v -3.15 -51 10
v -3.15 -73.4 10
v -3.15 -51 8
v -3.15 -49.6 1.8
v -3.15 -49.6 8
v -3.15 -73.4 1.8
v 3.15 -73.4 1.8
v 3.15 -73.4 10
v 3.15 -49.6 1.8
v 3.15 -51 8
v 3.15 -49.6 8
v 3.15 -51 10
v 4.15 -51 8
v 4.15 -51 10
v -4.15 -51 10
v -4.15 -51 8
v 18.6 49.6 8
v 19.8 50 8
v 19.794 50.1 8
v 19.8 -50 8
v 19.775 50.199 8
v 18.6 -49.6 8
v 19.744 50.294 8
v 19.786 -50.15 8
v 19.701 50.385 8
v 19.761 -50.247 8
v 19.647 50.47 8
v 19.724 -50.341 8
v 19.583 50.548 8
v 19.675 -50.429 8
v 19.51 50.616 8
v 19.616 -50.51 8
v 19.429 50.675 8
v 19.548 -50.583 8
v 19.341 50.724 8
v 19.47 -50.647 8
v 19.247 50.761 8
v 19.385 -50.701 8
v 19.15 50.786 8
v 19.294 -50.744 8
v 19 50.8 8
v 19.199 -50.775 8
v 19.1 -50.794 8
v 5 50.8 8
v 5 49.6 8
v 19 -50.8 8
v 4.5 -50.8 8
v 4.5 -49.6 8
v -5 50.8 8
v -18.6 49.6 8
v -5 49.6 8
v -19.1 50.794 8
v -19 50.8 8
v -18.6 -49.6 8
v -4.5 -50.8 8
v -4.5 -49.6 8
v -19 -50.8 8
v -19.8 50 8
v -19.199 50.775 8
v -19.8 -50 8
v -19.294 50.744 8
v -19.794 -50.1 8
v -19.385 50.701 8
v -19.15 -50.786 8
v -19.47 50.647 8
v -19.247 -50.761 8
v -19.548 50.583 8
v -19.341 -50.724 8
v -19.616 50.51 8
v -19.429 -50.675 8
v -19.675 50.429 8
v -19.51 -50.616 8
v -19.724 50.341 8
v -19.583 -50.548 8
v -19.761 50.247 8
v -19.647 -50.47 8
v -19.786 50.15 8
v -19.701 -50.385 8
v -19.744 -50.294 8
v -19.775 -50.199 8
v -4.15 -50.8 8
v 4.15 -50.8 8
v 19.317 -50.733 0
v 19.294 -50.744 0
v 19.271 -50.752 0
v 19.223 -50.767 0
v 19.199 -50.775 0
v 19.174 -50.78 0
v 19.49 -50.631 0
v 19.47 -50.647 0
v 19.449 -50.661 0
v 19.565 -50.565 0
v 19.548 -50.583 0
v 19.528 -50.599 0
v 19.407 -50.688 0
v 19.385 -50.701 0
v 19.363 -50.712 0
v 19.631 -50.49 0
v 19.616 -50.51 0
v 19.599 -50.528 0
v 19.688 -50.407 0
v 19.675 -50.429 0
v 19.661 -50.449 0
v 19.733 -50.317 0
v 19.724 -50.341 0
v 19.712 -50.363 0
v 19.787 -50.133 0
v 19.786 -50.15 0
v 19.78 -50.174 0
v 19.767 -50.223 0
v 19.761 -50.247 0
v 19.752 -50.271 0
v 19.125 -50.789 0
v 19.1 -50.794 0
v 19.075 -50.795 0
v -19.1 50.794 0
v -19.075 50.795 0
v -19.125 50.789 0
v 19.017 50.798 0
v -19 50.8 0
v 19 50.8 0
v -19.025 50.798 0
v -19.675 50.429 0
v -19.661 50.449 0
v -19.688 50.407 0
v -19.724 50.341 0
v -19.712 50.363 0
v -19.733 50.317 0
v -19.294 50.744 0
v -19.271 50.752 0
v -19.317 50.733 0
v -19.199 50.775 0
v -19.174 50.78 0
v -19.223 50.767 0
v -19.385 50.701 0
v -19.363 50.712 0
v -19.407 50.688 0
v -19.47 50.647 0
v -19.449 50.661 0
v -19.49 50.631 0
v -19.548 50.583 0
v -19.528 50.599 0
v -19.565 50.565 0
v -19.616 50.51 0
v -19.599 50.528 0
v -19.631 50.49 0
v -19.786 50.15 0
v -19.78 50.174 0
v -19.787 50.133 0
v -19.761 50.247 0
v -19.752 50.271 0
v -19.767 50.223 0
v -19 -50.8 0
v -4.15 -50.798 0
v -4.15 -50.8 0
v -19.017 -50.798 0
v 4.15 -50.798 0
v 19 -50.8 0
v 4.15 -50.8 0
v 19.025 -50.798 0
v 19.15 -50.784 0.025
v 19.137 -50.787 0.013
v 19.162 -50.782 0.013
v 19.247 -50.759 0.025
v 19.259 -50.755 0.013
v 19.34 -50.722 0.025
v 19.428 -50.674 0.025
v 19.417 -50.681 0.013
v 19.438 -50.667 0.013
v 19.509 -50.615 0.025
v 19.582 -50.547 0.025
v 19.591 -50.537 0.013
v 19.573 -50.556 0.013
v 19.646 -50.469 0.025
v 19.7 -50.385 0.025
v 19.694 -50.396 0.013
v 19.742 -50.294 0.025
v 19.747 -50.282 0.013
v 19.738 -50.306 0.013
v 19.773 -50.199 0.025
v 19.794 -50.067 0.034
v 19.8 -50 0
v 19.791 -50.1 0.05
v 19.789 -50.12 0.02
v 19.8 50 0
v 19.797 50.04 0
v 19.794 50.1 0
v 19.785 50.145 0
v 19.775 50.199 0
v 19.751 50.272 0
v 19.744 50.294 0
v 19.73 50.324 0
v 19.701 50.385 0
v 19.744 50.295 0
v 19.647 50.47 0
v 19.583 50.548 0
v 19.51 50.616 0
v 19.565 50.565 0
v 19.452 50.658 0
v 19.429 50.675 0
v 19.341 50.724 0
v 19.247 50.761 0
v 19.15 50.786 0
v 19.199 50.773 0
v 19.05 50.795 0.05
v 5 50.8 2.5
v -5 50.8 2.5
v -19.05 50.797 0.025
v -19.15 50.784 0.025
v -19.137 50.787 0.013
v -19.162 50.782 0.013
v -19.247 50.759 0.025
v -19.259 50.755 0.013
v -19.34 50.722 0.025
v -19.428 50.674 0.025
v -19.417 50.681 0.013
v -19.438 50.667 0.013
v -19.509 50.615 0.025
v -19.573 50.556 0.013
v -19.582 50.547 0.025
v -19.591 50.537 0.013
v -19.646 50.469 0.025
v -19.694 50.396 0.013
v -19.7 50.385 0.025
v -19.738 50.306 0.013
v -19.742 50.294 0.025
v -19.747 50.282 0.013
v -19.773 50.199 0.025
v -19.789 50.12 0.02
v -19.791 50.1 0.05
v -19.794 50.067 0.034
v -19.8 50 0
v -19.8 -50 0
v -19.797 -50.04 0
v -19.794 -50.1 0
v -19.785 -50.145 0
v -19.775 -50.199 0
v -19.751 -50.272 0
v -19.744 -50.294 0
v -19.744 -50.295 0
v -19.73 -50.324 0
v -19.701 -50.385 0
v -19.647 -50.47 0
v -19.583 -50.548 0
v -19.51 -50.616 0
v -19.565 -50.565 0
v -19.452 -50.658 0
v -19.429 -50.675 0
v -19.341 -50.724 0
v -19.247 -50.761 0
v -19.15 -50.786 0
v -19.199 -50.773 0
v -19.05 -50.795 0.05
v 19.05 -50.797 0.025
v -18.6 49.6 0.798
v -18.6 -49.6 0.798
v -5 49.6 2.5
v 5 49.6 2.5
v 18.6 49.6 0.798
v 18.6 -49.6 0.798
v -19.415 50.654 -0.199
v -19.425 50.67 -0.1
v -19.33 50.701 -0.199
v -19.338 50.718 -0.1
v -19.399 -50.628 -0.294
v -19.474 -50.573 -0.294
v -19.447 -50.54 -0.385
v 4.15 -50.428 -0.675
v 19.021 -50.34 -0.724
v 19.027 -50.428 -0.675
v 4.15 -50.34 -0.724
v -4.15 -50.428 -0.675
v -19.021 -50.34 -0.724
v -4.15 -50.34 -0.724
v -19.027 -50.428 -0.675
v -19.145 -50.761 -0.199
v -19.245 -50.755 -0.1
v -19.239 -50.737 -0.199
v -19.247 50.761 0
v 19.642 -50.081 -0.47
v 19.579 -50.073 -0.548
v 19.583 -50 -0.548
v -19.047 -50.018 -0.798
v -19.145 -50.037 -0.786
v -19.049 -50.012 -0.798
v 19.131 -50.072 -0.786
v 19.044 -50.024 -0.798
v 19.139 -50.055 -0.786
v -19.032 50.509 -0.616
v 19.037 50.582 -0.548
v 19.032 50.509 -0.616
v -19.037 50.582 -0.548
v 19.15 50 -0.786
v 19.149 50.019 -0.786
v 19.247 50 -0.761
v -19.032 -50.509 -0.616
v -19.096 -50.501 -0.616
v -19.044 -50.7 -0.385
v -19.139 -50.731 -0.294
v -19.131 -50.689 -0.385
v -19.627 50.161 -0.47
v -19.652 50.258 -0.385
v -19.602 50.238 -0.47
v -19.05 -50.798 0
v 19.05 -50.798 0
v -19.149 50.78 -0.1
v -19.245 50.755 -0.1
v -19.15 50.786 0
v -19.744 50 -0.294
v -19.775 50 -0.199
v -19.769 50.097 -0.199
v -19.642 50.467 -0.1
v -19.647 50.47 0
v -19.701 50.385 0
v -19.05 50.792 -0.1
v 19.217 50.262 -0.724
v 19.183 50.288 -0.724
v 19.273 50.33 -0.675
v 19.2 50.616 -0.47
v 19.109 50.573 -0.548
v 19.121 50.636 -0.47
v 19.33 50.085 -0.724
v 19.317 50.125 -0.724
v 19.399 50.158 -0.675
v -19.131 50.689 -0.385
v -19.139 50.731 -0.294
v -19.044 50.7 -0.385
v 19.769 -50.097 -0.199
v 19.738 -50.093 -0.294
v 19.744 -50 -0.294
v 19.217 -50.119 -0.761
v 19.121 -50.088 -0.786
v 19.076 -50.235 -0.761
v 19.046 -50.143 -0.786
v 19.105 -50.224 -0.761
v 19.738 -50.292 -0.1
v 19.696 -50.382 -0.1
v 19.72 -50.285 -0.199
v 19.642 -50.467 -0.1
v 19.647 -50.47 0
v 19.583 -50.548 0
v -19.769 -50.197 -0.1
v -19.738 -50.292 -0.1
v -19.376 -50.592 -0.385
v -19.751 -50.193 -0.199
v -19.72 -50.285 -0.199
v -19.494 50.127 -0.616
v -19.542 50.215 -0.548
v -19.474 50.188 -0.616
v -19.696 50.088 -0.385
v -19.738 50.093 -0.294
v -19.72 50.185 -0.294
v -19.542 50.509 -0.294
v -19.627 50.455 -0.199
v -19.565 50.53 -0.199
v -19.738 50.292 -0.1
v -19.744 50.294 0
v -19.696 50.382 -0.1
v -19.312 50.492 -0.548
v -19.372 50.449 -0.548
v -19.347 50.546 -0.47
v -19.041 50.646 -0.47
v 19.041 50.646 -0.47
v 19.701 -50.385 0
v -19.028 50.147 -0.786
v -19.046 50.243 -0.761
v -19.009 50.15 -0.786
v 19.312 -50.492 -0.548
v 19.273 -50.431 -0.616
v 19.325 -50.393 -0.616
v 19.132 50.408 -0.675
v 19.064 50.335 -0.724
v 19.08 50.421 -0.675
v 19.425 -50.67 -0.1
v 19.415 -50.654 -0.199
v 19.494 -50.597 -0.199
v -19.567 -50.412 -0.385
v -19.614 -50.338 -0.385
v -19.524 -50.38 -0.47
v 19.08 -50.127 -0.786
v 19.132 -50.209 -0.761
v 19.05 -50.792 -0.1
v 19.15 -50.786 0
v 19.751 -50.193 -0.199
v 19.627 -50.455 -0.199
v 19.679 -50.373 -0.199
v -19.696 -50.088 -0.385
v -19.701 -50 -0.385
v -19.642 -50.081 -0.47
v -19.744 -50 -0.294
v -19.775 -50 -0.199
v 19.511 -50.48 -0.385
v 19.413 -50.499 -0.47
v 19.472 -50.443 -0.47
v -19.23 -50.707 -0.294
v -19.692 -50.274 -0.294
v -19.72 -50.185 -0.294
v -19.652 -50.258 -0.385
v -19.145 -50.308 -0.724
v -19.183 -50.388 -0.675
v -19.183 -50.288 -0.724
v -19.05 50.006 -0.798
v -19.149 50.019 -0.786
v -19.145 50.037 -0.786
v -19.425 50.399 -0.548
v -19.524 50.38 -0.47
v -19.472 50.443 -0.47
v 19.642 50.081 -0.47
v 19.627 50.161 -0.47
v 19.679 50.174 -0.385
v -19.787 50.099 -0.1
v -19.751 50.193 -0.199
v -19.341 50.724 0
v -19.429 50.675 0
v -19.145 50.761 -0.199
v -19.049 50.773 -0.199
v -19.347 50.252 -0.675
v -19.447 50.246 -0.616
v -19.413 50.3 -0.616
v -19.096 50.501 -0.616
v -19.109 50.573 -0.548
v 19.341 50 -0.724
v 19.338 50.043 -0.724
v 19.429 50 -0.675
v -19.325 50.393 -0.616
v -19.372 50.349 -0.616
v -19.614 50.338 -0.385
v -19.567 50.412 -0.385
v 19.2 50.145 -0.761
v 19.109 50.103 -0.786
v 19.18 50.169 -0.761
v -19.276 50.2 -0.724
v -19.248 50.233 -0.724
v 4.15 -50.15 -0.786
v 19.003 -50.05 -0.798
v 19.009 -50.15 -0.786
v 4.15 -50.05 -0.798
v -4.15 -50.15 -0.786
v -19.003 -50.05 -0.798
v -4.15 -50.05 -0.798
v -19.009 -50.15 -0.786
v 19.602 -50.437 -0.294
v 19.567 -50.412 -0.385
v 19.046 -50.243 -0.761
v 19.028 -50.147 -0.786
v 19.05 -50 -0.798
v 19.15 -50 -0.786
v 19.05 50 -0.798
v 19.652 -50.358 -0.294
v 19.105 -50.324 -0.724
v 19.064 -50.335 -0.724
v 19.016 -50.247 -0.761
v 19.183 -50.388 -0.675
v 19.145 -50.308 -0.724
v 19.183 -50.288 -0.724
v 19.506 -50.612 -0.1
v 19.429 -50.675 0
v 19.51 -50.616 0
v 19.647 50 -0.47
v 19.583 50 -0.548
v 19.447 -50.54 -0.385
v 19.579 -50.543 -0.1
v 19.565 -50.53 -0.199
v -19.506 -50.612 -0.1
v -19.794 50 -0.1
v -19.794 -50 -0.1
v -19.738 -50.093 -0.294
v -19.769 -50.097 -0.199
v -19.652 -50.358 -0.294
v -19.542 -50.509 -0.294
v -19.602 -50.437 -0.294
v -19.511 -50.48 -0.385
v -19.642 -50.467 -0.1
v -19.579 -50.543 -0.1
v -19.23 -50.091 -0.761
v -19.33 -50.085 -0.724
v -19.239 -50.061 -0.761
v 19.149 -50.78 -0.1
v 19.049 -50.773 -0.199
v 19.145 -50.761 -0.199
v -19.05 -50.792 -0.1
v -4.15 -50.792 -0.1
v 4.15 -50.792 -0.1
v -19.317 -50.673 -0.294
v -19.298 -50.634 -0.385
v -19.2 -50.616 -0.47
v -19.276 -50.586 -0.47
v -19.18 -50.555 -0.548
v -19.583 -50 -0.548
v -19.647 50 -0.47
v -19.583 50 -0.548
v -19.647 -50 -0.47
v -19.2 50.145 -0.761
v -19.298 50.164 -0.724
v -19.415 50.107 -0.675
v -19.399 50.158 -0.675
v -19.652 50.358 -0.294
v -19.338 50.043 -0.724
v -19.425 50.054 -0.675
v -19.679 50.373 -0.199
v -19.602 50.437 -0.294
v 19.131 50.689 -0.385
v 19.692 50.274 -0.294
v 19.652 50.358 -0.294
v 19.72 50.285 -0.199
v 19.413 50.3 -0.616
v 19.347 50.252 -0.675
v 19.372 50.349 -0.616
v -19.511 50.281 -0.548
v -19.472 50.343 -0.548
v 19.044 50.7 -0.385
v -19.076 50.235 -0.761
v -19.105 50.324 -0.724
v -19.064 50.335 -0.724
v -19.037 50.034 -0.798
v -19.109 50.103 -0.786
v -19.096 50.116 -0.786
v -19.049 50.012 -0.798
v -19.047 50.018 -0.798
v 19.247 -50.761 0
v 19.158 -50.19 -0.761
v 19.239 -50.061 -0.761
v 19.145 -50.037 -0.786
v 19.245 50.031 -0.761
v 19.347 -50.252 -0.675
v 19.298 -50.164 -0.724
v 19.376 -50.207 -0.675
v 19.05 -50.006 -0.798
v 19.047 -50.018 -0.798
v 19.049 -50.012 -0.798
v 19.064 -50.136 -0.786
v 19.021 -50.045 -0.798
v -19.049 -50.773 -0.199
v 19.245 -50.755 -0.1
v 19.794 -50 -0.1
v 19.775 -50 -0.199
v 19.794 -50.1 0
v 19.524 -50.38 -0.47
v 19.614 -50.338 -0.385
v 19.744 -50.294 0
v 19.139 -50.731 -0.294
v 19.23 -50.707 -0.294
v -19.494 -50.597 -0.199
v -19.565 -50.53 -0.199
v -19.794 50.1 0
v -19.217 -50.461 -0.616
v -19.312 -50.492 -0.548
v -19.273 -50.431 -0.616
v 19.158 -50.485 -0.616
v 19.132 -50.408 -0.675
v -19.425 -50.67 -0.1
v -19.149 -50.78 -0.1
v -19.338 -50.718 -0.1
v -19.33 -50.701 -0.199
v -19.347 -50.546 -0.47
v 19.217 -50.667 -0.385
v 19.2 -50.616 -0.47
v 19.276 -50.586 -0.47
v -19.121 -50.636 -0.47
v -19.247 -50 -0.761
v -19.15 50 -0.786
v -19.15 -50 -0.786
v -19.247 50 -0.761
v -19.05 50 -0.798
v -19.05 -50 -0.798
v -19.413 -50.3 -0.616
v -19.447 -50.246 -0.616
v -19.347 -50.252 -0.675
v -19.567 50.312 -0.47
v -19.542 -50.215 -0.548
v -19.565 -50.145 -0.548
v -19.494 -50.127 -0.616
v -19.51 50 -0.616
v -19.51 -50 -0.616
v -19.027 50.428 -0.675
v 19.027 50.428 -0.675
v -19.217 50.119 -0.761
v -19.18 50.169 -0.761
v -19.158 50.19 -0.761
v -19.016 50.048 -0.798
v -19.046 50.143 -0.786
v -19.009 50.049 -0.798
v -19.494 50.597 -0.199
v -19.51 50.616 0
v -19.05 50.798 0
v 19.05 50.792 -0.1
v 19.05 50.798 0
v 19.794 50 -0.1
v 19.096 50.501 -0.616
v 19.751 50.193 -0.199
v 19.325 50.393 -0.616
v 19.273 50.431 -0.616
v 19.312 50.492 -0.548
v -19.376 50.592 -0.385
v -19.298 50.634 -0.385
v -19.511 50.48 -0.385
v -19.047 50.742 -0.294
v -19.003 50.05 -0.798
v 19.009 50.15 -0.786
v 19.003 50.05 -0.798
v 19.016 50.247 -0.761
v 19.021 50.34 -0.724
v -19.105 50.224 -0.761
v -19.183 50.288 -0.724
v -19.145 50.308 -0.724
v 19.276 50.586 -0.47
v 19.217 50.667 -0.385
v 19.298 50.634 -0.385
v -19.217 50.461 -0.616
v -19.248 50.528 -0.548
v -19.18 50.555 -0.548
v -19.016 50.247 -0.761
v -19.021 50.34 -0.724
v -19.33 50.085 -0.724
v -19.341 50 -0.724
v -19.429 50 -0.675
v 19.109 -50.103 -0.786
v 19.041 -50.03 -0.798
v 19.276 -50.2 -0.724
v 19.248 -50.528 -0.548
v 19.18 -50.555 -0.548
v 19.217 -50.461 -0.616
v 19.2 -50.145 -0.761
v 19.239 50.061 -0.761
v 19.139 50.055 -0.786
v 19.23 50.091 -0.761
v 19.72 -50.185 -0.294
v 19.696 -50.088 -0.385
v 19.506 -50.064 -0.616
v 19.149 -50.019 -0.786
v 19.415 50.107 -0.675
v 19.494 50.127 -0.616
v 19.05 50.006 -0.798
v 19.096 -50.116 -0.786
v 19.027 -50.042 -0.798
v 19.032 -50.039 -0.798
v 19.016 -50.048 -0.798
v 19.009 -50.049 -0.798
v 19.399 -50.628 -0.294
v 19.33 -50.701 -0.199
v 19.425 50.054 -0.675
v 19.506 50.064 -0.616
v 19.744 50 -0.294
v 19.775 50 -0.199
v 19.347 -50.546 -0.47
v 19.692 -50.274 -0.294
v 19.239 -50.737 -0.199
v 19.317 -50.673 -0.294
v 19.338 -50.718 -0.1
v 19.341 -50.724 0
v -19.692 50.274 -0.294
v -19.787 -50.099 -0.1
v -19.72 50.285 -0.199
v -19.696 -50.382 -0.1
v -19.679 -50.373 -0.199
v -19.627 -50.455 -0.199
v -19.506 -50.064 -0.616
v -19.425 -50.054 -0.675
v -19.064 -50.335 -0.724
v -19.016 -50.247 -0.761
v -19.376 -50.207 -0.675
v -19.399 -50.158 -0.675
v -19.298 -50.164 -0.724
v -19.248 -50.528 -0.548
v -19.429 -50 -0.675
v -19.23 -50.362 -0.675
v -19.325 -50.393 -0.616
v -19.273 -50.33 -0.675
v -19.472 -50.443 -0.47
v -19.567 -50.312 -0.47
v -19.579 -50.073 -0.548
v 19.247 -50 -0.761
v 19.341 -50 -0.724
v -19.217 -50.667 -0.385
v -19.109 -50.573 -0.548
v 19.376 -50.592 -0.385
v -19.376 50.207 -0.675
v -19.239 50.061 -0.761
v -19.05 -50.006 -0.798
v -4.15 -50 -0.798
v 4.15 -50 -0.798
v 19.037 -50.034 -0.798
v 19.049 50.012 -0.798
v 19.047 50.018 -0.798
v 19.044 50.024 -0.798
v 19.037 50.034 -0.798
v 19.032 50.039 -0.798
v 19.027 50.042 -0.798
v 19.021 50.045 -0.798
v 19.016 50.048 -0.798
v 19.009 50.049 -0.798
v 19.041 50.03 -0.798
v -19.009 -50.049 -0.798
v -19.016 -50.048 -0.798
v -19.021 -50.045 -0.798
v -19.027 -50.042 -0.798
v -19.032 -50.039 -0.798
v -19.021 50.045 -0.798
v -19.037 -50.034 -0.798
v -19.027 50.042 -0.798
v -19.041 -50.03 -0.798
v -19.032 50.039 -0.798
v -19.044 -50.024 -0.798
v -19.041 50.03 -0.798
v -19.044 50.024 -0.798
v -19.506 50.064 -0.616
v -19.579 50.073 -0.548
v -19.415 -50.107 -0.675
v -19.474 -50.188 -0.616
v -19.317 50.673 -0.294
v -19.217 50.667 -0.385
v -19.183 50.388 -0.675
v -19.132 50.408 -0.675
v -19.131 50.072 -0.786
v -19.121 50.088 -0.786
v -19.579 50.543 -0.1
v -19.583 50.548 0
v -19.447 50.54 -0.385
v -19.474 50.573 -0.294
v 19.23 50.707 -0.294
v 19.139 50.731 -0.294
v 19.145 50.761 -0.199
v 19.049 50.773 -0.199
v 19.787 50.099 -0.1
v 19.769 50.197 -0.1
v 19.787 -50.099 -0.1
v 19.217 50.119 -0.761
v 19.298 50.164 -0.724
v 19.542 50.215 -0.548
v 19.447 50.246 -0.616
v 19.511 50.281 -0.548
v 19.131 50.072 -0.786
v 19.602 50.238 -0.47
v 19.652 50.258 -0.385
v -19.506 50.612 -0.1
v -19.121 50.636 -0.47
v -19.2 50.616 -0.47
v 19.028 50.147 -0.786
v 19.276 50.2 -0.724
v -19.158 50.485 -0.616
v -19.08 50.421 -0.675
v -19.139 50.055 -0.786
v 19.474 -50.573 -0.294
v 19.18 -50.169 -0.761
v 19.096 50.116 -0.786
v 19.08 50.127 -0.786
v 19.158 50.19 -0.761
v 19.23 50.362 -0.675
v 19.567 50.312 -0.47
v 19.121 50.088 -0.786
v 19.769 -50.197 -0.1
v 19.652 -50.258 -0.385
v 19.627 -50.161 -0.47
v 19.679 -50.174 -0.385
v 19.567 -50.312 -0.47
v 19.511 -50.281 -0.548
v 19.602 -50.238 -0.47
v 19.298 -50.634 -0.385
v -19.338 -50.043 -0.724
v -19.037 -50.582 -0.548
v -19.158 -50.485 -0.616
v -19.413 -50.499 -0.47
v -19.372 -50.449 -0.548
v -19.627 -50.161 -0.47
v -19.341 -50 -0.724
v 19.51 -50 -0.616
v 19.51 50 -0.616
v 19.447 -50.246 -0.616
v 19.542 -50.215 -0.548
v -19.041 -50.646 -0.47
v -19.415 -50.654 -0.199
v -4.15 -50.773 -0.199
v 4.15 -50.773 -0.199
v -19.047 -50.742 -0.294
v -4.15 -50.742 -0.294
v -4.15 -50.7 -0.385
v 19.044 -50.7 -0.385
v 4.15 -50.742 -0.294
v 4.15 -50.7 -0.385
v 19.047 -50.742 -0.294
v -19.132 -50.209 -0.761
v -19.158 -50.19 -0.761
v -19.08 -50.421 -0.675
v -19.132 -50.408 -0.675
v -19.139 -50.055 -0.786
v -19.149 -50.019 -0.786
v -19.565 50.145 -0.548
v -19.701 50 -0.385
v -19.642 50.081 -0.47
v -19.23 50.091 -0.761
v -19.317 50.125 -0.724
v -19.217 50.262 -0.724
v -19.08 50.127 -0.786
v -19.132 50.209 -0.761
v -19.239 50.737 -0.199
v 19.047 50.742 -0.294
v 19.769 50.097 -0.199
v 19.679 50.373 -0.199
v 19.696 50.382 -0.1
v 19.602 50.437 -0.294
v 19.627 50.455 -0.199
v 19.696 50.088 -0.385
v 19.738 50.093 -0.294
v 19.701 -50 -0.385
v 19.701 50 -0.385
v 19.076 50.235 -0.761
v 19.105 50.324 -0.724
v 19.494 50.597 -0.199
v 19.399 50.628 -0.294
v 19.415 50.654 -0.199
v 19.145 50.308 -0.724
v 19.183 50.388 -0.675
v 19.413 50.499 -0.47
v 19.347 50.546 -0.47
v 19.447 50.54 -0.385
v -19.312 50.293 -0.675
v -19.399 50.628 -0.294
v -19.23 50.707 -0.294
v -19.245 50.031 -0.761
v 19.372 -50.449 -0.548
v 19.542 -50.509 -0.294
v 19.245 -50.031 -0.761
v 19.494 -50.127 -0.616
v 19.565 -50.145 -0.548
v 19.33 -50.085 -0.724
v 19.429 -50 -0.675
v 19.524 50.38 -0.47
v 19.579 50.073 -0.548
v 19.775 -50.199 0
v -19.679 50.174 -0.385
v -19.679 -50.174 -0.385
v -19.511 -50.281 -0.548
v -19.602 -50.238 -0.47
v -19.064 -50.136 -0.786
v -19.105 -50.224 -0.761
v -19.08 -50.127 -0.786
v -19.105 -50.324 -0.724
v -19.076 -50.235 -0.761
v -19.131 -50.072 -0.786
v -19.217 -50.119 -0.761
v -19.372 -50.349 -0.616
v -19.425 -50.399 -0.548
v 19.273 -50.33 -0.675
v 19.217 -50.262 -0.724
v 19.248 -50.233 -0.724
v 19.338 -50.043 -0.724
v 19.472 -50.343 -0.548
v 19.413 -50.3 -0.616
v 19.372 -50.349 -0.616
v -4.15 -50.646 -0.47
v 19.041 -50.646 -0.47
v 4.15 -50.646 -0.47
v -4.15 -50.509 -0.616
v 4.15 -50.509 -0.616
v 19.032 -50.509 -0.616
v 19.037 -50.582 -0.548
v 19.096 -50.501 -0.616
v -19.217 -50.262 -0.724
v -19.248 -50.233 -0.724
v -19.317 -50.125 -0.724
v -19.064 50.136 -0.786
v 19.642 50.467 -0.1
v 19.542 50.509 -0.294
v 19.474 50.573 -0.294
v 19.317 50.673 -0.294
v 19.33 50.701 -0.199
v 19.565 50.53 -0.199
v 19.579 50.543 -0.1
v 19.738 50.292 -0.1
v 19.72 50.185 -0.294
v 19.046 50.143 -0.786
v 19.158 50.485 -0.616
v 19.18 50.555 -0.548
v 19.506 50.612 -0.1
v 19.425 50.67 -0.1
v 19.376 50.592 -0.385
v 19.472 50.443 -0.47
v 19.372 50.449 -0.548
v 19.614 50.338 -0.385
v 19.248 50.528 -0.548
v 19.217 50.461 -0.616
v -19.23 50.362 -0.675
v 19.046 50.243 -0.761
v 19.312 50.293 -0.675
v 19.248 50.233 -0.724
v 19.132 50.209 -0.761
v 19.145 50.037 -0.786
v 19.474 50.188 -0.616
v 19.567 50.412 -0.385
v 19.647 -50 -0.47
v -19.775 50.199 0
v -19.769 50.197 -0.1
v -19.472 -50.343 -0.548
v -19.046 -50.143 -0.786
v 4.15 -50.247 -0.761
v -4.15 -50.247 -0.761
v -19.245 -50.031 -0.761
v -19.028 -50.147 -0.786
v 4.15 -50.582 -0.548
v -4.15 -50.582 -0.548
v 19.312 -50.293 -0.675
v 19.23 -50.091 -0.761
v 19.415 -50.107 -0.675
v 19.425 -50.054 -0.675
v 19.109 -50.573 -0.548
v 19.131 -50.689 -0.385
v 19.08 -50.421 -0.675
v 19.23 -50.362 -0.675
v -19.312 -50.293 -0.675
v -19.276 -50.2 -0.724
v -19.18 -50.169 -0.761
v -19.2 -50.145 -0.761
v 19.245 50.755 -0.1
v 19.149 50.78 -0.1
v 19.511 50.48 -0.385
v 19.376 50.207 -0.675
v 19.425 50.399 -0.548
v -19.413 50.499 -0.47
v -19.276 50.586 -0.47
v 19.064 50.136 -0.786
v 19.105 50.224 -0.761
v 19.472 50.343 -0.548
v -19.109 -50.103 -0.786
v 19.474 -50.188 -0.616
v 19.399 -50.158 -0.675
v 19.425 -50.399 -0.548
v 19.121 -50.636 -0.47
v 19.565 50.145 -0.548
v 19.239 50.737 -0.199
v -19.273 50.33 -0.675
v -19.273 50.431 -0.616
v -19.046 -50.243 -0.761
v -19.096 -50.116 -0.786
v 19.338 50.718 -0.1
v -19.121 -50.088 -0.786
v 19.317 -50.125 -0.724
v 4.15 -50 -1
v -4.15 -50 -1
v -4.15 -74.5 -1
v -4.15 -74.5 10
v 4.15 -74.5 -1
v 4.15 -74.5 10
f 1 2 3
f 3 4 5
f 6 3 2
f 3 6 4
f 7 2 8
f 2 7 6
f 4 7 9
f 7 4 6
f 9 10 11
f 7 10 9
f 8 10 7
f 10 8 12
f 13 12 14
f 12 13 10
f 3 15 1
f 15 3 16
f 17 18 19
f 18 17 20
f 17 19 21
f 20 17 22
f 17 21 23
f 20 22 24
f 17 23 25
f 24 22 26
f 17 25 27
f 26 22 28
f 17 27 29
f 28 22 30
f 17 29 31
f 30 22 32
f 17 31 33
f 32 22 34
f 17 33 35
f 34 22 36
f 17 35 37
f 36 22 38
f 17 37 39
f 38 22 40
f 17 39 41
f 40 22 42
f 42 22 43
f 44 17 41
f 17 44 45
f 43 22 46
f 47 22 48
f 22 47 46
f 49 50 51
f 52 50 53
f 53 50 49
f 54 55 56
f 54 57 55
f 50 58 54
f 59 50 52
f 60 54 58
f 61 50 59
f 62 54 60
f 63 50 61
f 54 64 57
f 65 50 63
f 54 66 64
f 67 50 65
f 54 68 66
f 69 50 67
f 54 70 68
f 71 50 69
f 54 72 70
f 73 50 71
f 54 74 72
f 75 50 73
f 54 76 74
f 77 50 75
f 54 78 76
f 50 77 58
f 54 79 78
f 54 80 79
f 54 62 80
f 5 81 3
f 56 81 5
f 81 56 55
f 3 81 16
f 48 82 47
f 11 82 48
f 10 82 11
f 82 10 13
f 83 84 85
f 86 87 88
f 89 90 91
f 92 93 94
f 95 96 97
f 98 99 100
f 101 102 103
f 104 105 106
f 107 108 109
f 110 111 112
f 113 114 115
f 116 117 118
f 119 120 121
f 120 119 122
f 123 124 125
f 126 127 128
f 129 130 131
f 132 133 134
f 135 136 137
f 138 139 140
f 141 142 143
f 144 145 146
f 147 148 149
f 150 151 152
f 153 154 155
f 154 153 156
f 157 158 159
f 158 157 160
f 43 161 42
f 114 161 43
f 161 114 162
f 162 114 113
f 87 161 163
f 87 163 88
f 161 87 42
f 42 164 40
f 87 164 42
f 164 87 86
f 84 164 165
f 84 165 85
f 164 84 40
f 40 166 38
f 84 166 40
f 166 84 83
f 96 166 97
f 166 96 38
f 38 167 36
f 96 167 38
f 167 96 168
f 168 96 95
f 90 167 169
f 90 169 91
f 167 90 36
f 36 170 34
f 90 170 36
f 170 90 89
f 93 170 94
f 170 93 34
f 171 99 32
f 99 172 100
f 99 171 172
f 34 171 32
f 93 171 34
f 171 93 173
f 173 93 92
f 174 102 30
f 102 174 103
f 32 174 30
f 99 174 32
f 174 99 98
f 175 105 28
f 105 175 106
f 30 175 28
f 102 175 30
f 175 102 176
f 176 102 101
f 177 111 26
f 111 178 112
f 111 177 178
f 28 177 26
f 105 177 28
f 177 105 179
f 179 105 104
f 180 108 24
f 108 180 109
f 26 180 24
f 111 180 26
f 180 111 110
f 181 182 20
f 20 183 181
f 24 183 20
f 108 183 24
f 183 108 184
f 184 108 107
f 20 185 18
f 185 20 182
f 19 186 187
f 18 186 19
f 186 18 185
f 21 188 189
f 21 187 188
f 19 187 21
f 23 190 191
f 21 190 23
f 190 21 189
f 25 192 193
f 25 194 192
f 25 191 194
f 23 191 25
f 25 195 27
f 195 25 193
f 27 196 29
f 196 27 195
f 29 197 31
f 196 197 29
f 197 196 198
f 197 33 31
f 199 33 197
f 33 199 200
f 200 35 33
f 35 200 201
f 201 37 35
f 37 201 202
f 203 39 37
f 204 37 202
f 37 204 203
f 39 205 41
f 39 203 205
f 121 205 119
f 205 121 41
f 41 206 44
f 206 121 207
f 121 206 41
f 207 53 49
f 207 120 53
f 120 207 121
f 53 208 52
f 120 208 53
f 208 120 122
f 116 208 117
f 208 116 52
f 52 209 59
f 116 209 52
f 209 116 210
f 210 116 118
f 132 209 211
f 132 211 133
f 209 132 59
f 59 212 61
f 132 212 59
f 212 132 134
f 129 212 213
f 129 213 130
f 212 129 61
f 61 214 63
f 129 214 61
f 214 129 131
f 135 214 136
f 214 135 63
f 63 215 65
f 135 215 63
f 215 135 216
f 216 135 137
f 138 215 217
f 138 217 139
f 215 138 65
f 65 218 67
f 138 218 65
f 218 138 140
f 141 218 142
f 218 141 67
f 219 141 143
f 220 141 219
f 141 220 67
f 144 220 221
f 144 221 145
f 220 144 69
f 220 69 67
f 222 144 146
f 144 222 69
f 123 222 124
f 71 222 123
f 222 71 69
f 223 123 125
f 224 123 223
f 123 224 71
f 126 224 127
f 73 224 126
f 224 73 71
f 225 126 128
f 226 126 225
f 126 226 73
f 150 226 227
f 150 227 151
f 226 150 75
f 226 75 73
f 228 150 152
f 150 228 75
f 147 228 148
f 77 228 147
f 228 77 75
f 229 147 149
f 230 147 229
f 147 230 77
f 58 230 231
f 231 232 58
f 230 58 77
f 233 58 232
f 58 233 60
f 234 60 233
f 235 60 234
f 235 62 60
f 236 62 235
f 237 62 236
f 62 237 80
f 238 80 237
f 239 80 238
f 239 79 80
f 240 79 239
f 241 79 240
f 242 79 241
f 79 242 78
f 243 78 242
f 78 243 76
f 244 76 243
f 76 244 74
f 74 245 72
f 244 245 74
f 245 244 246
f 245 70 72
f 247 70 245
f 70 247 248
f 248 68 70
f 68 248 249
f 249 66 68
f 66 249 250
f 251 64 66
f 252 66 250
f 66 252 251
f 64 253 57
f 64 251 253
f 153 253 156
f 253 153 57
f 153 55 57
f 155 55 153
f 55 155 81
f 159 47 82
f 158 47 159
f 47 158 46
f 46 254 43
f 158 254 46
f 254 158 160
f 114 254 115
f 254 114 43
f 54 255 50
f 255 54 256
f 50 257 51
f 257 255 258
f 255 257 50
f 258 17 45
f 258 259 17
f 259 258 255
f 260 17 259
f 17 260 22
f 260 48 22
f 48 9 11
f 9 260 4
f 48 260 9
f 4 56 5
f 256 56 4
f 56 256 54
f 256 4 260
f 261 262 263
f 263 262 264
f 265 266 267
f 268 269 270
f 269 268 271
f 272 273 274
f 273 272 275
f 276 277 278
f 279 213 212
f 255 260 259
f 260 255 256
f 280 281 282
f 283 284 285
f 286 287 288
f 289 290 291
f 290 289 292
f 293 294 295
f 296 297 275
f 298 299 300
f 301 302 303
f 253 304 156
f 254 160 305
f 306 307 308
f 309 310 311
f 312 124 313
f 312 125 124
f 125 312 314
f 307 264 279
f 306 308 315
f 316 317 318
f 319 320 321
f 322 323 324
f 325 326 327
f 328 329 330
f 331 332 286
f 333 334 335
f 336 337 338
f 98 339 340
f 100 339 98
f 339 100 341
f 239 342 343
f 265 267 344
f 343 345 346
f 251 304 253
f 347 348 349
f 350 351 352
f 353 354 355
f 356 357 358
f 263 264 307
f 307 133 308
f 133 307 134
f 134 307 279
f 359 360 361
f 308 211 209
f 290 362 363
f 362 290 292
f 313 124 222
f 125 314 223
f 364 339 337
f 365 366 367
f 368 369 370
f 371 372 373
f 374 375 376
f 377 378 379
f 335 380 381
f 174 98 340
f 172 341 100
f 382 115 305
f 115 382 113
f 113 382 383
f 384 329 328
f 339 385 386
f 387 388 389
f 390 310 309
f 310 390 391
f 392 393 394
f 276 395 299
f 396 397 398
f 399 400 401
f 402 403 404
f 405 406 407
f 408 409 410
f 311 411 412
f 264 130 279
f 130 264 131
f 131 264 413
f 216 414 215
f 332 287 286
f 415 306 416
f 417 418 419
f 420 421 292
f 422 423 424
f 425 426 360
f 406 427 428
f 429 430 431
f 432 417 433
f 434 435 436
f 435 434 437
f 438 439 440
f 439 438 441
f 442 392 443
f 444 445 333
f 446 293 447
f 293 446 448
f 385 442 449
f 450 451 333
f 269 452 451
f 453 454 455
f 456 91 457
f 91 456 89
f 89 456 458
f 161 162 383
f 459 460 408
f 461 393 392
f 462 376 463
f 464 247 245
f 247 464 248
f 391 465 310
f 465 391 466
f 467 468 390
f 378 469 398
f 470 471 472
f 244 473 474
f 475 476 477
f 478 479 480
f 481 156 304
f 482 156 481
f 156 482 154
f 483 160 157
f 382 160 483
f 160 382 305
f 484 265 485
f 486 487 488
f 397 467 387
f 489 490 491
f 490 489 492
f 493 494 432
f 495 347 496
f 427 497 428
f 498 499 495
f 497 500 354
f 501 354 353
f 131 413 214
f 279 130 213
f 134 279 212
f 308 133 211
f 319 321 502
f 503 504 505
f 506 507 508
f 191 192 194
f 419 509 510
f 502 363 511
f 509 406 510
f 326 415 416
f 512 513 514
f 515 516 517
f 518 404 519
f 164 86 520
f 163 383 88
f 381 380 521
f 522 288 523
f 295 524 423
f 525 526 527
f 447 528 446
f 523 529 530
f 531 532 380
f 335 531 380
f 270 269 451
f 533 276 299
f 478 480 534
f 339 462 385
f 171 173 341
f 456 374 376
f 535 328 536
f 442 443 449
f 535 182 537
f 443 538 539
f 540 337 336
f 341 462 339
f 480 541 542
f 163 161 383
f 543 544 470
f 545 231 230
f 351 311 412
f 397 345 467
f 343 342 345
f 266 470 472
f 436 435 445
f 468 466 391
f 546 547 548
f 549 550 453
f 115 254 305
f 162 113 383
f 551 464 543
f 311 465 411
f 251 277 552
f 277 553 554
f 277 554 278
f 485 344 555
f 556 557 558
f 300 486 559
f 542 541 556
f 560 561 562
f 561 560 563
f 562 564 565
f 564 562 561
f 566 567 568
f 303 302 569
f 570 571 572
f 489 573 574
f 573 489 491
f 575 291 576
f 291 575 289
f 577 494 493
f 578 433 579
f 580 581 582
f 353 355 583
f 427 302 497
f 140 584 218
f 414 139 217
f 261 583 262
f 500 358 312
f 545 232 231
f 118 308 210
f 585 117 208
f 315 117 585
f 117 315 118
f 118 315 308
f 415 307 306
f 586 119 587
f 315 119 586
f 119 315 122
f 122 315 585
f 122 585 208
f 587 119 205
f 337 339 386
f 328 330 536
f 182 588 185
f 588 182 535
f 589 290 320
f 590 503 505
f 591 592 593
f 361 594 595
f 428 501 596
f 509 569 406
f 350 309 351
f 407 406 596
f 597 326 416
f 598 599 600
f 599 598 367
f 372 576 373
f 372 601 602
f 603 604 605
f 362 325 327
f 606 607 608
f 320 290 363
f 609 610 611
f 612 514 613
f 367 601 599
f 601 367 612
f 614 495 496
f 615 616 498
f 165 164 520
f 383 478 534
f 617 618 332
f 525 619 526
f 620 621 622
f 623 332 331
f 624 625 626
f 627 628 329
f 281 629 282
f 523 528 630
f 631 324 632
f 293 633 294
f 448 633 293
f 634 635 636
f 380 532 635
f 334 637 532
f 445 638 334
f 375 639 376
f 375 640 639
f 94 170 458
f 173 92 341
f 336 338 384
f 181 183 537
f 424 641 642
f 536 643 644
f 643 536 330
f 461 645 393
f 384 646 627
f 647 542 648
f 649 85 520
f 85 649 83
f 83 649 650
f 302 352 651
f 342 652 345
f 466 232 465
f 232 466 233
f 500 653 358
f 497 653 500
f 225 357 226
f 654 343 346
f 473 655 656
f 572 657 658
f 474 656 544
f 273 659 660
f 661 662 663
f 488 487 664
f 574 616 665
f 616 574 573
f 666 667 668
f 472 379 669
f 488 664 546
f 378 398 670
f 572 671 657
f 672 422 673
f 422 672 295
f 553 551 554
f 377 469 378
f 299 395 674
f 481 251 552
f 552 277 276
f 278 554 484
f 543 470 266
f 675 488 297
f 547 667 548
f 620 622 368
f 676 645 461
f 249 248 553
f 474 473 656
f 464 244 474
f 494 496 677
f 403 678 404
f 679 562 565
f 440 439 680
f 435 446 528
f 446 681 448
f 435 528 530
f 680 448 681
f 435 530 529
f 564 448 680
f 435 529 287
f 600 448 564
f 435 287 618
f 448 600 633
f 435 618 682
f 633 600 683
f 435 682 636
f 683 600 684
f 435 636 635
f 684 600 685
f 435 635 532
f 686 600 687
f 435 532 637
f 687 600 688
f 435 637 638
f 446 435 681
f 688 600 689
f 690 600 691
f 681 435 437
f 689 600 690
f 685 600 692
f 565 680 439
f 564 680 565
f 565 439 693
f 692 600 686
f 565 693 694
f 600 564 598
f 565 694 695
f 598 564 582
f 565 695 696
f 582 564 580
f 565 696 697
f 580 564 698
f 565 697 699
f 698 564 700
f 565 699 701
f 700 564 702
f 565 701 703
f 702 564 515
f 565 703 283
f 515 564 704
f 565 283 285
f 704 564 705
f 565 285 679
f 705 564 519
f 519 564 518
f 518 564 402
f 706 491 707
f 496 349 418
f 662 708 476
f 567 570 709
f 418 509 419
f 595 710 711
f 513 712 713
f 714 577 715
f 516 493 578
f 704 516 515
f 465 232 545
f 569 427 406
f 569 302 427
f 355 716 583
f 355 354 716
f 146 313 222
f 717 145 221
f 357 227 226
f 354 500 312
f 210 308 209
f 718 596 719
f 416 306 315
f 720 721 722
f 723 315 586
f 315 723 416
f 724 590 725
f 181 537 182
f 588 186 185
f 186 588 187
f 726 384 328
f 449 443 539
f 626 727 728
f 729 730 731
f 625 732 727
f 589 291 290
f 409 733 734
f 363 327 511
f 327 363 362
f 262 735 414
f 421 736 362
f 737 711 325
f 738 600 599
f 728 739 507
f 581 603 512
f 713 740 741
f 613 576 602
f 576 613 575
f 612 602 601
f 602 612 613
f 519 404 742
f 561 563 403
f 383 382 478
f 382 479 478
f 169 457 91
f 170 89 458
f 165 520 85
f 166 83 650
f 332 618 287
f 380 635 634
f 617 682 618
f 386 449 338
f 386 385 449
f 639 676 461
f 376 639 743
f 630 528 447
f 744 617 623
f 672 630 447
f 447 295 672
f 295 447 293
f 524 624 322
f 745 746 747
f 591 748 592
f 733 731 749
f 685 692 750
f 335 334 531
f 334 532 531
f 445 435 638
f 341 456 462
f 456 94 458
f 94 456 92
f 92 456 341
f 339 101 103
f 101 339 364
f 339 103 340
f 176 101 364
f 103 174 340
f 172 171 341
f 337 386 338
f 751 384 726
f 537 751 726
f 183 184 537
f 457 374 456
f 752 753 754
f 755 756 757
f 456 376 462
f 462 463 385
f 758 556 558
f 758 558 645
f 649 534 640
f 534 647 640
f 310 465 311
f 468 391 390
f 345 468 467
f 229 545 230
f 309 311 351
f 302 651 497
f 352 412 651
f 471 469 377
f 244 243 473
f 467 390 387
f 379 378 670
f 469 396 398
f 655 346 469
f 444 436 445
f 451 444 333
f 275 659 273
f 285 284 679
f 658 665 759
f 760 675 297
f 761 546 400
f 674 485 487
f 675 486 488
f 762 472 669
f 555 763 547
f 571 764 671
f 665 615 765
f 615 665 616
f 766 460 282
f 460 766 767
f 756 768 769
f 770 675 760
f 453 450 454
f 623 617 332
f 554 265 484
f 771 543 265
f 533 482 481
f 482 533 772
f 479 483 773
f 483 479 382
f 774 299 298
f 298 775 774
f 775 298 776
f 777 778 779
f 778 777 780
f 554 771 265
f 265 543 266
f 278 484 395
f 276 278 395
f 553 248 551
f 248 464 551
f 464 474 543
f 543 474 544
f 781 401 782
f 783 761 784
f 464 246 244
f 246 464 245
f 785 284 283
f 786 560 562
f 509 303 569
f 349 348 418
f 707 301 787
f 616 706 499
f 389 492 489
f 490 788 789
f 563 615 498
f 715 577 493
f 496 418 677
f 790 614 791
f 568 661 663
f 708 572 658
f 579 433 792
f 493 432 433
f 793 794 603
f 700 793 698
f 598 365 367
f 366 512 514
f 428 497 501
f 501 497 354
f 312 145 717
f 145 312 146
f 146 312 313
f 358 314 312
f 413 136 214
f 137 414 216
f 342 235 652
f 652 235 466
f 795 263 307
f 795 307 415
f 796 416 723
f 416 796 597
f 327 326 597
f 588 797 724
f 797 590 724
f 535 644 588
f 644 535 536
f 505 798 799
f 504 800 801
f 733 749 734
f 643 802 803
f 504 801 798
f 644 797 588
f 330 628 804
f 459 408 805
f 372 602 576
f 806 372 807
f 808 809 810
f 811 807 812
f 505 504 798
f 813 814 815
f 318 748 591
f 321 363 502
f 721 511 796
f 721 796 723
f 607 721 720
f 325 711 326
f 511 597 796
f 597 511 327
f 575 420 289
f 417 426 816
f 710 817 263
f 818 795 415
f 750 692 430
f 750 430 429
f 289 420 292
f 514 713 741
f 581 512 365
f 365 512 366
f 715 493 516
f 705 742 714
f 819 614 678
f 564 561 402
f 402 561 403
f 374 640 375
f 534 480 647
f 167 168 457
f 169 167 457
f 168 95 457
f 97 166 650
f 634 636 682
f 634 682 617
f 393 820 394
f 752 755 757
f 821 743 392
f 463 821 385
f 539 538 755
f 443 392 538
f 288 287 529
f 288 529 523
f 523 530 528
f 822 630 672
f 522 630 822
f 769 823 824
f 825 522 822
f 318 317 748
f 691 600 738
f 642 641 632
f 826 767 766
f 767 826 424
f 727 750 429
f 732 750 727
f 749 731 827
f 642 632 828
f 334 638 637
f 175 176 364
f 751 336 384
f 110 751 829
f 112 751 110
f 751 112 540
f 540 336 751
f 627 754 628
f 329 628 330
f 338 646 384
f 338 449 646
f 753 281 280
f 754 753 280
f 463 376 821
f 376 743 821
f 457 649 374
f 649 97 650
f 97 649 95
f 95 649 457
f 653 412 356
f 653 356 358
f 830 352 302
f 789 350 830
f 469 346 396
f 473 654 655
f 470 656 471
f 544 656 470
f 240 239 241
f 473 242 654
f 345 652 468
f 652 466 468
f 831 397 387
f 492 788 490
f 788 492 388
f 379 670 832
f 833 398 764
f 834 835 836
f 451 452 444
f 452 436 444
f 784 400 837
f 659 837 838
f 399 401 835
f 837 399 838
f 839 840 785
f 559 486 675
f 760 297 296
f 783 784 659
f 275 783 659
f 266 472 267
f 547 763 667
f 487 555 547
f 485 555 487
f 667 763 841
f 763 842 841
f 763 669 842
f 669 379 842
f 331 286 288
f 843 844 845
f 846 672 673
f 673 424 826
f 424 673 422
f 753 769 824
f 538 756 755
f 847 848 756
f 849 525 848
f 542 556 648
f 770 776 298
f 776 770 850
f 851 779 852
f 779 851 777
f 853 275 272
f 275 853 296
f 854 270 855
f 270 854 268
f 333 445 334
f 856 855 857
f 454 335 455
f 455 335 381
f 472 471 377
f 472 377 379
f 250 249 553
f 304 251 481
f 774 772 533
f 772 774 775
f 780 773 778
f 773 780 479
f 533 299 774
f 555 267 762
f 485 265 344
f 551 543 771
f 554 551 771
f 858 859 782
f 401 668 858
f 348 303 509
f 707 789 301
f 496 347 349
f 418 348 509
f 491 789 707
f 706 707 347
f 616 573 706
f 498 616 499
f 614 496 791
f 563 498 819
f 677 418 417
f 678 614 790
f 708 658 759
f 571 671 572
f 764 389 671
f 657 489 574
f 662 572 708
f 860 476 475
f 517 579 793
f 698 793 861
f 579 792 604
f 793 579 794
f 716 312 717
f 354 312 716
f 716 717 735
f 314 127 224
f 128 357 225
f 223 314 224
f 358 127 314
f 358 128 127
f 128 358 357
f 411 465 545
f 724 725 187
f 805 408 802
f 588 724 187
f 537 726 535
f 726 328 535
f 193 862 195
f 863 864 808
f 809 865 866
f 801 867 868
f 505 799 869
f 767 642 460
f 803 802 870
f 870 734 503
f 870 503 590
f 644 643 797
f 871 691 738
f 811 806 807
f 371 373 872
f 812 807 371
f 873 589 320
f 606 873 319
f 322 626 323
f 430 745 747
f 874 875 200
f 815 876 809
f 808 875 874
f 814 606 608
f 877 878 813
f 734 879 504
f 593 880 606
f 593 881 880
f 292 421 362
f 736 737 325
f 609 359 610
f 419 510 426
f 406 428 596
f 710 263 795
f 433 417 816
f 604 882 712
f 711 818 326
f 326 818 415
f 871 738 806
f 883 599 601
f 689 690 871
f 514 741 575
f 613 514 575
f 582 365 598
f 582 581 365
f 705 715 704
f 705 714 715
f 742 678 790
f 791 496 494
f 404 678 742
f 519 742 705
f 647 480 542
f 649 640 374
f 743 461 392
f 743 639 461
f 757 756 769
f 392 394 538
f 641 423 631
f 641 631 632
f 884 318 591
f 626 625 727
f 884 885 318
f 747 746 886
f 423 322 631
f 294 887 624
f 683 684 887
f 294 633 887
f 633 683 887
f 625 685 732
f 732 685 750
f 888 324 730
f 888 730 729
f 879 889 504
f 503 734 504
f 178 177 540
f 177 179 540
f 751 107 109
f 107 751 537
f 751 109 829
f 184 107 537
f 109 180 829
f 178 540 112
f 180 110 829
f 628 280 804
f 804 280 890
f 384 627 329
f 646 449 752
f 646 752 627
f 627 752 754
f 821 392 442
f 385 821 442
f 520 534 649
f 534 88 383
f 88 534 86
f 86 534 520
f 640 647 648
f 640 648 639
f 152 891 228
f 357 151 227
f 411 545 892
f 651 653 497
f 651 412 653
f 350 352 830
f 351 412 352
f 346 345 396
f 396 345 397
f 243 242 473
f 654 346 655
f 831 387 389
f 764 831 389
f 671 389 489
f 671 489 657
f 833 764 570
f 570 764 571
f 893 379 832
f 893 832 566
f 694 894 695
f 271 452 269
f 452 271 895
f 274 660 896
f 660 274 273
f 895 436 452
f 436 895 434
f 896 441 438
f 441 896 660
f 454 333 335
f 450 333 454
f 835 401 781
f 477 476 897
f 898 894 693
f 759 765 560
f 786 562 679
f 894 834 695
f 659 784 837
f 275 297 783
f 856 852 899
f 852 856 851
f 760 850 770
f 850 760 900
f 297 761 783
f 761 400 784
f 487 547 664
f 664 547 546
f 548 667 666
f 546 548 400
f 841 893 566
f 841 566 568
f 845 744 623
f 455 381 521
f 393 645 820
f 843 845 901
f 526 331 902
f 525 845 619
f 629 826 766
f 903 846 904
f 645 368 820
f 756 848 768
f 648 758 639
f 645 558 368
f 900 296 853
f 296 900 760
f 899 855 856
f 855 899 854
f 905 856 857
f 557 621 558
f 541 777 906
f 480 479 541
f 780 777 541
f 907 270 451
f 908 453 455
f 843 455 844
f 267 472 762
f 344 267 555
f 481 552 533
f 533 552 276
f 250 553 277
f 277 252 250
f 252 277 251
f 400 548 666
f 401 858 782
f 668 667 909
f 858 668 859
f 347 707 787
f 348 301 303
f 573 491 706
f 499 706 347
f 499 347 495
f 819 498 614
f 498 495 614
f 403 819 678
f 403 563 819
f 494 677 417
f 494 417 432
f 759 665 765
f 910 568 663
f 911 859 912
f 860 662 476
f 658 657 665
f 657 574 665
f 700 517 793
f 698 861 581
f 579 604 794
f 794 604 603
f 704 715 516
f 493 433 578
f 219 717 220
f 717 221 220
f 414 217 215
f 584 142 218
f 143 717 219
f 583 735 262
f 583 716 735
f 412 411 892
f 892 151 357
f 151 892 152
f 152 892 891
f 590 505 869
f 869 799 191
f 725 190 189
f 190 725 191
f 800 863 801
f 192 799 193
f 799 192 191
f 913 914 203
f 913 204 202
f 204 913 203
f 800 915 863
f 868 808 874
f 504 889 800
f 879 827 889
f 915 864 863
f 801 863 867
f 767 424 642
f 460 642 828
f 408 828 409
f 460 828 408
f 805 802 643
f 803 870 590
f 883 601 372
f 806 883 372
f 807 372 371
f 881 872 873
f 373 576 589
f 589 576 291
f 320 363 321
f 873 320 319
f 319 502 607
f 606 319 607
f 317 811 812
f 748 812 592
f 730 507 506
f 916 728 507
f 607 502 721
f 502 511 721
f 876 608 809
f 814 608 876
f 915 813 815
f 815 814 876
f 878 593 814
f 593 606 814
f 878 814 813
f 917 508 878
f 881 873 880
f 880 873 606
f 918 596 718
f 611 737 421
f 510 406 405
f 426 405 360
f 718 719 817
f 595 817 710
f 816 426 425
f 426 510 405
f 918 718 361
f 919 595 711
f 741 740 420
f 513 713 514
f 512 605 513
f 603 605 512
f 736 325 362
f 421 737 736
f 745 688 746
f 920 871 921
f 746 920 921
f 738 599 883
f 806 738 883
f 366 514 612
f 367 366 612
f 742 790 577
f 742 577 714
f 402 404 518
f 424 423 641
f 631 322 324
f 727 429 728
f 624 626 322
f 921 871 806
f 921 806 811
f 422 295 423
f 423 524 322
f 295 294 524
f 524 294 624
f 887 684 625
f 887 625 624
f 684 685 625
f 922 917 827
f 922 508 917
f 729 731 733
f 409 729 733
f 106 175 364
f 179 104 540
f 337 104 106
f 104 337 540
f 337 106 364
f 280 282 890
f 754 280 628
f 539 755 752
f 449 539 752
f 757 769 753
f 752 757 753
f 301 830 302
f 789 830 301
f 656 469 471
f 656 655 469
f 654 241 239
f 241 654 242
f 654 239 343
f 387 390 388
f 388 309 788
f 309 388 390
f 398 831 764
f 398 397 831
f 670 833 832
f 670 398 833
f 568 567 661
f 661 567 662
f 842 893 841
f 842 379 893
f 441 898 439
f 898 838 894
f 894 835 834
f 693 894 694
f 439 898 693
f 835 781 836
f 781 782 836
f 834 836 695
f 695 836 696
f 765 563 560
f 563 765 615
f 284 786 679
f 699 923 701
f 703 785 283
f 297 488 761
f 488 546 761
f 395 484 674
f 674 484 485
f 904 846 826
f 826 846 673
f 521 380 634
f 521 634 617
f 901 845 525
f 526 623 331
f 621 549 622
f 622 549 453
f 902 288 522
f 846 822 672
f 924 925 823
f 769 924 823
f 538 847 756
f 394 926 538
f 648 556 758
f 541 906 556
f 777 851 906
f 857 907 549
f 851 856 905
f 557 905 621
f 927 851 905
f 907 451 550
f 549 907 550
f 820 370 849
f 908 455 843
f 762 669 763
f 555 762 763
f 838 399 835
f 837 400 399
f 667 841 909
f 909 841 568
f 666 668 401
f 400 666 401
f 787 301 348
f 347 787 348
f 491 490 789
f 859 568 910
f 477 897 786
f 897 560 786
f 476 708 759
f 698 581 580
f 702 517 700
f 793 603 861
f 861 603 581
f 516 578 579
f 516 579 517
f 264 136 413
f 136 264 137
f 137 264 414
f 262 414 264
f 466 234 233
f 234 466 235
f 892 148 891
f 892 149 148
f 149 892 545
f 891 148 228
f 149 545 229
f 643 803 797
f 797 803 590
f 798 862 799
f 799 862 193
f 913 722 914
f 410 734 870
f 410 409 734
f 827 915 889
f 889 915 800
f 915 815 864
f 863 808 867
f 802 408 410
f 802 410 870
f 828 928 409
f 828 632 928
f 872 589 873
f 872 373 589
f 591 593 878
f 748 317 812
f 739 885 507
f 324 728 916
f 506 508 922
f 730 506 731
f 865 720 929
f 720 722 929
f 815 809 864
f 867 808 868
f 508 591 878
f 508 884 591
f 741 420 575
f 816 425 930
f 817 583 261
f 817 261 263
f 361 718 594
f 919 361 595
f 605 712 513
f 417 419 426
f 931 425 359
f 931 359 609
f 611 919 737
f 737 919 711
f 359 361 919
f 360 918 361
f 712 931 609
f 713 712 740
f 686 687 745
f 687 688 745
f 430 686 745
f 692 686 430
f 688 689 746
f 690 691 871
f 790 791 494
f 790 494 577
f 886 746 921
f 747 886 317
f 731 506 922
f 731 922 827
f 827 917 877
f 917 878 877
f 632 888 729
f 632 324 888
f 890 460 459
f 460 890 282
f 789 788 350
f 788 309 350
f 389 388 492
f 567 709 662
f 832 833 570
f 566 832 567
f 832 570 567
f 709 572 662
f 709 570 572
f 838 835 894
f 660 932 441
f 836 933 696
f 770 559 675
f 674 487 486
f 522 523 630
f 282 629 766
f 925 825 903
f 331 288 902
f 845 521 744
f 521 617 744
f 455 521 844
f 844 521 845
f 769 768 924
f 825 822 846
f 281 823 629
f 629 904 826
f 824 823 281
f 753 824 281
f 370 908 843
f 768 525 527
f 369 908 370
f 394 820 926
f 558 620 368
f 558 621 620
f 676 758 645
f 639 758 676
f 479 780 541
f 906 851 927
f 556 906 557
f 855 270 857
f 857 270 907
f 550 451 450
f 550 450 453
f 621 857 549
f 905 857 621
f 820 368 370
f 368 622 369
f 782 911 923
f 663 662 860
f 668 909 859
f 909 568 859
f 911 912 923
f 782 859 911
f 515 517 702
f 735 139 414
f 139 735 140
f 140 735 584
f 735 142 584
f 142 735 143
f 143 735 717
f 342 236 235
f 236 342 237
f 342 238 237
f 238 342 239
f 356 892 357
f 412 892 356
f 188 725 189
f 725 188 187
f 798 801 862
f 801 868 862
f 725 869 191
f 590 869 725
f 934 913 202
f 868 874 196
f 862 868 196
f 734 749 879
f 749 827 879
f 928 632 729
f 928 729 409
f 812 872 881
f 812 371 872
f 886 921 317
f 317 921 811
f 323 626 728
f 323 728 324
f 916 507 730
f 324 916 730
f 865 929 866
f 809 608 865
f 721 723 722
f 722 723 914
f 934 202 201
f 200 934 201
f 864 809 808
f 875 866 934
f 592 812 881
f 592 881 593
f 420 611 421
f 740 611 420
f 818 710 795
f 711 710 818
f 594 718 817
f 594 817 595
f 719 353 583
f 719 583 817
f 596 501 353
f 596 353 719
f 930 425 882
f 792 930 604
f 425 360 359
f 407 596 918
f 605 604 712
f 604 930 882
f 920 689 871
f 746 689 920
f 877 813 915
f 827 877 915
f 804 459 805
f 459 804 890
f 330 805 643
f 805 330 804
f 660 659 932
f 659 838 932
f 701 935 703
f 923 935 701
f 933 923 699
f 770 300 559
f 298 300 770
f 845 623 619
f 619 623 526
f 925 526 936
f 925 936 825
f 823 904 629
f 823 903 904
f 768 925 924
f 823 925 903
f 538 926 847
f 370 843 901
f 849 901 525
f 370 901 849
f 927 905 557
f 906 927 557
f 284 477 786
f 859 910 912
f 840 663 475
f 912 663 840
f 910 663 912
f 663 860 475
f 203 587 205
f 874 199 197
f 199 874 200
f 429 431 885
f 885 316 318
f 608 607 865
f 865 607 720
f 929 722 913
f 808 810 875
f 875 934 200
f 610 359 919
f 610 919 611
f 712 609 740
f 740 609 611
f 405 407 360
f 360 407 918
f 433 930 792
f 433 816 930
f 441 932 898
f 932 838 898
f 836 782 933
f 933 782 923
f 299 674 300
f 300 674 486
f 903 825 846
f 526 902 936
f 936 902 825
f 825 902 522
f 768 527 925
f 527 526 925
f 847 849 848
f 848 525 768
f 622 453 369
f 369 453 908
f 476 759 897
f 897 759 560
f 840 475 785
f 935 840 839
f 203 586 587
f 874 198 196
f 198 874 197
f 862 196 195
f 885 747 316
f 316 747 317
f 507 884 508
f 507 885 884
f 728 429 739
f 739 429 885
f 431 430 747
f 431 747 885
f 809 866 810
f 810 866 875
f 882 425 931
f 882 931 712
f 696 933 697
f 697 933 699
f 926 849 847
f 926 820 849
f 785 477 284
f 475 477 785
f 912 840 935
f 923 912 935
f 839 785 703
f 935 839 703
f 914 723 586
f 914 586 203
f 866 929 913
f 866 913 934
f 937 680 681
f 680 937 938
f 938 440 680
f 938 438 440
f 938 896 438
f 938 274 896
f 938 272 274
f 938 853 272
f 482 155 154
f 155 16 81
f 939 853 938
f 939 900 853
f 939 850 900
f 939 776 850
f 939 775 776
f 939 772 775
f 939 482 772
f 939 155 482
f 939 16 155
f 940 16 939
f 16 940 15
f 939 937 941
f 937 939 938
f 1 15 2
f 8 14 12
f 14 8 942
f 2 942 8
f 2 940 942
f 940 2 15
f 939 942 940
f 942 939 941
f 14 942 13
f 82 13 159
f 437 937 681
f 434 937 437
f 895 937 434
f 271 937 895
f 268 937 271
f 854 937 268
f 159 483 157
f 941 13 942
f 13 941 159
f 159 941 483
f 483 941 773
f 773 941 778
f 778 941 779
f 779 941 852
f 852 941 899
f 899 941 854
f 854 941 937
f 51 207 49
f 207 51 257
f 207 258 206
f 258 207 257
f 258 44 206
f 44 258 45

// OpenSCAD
$fn=50;
BOX_W = 38; // Box Width
BOX_L = 100;// Box Length
BOX_H = 8.0; // Box Height
CORNER_RADIUS = 0.8; // Radius of corners
WALL = 0.8;// Wall Thickness all sides

MIC_OUTSIDE_WIDTH=8.3;
MIC_OUTSIDE_HEIGHT=11.0;
MIC_INSIDE_WIDTH=6.3;
MIC_LENGTH=24.5;

CON_OUTSIDE=5;
CON_INSIDE=4;
CON_LENGTH=3;

MIC_OFFSET_X = 0;
MIC_OFFSET_Y = -32.0;
MIC_OFFSET_Z = -0.5;

VENT_OFFSET = -4.5;
VENT_L = 19.0;
VENT_R = -19.0;

module sq_vent(x, y, vent_offset) {
    translate([x, y, BOX_H + vent_offset]) {
        rotate([90, 0, 90]) {
            linear_extrude(2.5) square([2, 2], center=true);
        }
    }
}

module vent(x, y, vent_offset) {
    translate([x, y, BOX_H + vent_offset]) {
        rotate([90, 0, 90]) {
            cylinder(h=3.0, d=2.0, center=true);
        }
    }
}

difference() {
    union() {
        linear_extrude( BOX_H )
        difference(){
            offset(r=CORNER_RADIUS) square( [BOX_W, BOX_L], center=true );
            offset(r= CORNER_RADIUS - WALL) square([BOX_W-WALL, BOX_L-WALL], center=true );
        };
        coordinates = [ [0,0],[0,BOX_L],[BOX_W,BOX_L],[BOX_W,0] ];
        translate ( [-BOX_W/2, -BOX_L/2] )
            hull()
            for (i = coordinates)
            translate(i) sphere(CORNER_RADIUS);
            
        translate([MIC_OFFSET_X, MIC_OFFSET_Y, MIC_OFFSET_Z]){
            // mic box
            translate([0,-18.0,BOX_H-3])
            rotate([90,0,0])
            linear_extrude(MIC_LENGTH)square([MIC_OUTSIDE_WIDTH,MIC_OUTSIDE_HEIGHT], center=true);
        }
    }
    translate([MIC_OFFSET_X, MIC_OFFSET_Y, MIC_OFFSET_Z]){
        // inside mic channel
        translate([0,-13.8,BOX_H-0.2]) // inside
        rotate([90,0,0])
        linear_extrude(MIC_LENGTH+3.1) square([MIC_INSIDE_WIDTH,MIC_OUTSIDE_HEIGHT], center=true); 
        
        // mic lid clearance at mic box opening
        translate([0,-17,BOX_H+1.60])
        rotate([90,0,0])
        linear_extrude(2.0) square([9,2.2], center=true);   
    }
    // cable exit
    translate([0,52.0,BOX_H-2.5])
    rotate([90,0,0])
    linear_extrude(3.0) square([10,6], center=true);
    /*
    // gas sensor vents
    vent(VENT_L, 29.0, VENT_OFFSET);
    vent(VENT_L, 21.0, VENT_OFFSET);
    vent(VENT_L, 13.0, VENT_OFFSET);
    vent(VENT_L, 5.0, VENT_OFFSET);
    vent(VENT_L, -3.0, VENT_OFFSET);
    vent(VENT_L, -11.0, VENT_OFFSET);
    
    vent(VENT_R, 29.0, VENT_OFFSET);
    vent(VENT_R, 21.0, VENT_OFFSET);
    vent(VENT_R, 13.0, VENT_OFFSET);
    vent(VENT_R, 5.0, VENT_OFFSET);
    vent(VENT_R, -3.0, VENT_OFFSET);
    vent(VENT_R, -11.0, VENT_OFFSET);
    */
}

/*
// save for archiving

module waterdrop() {
    difference(){
        // Main drop shape
        # cylinder(r1=0, r2=0.1875, h=0.375, center=false);
        
        // To subtract from the base to make it rounded like a waterdrop
        translate([0, 0, -0.05])
        sphere(r=0.1875);
    }
}

for(i=[0:2]){
    translate([i*0.5, 0, 0]){
        waterdrop();
    }
}
*/
